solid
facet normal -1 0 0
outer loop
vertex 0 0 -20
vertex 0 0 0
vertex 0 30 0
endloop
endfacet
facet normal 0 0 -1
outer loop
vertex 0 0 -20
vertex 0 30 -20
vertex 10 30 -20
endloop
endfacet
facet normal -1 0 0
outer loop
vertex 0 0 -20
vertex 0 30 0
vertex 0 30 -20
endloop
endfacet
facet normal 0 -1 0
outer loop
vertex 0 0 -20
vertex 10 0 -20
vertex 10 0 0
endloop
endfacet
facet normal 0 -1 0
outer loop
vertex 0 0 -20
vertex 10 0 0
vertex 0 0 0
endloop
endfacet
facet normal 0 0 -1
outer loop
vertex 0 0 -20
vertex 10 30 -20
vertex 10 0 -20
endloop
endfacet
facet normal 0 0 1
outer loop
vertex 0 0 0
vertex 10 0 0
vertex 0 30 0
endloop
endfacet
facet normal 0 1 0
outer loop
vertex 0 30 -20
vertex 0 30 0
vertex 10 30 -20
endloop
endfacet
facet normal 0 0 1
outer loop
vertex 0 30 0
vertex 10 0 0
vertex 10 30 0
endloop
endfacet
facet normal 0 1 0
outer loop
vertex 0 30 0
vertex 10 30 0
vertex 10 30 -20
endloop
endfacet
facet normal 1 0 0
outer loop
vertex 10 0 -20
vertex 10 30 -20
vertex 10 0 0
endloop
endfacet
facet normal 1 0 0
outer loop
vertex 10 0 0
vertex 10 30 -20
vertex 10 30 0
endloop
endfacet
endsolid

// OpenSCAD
// Start: lazy_union
default_5_default_5();
// End: lazy_union

// Modules.

// 'PartMaterial undef-default - default 5.0'
module default_5_default_5() {
  // 'None : _combine_solids_and_holes'
  union() {
    // 'default : _combine_solids_and_holes'
    union() {
      // 'box'
      multmatrix(m=[[1.0, 0.0, 0.0, 0.0], [0.0, 0.0, 1.0, 0.0], [-0.0, -1.0, -0.0, -0.0], [0.0, 0.0, 0.0, 1.0]]) {
        // 'box : _combine_solids_and_holes'
        union() {
          // 'box'
          cube(size=[10.0, 20.0, 30.0]);
        }
      }
    }
  }
} // end module default_5_default_5
